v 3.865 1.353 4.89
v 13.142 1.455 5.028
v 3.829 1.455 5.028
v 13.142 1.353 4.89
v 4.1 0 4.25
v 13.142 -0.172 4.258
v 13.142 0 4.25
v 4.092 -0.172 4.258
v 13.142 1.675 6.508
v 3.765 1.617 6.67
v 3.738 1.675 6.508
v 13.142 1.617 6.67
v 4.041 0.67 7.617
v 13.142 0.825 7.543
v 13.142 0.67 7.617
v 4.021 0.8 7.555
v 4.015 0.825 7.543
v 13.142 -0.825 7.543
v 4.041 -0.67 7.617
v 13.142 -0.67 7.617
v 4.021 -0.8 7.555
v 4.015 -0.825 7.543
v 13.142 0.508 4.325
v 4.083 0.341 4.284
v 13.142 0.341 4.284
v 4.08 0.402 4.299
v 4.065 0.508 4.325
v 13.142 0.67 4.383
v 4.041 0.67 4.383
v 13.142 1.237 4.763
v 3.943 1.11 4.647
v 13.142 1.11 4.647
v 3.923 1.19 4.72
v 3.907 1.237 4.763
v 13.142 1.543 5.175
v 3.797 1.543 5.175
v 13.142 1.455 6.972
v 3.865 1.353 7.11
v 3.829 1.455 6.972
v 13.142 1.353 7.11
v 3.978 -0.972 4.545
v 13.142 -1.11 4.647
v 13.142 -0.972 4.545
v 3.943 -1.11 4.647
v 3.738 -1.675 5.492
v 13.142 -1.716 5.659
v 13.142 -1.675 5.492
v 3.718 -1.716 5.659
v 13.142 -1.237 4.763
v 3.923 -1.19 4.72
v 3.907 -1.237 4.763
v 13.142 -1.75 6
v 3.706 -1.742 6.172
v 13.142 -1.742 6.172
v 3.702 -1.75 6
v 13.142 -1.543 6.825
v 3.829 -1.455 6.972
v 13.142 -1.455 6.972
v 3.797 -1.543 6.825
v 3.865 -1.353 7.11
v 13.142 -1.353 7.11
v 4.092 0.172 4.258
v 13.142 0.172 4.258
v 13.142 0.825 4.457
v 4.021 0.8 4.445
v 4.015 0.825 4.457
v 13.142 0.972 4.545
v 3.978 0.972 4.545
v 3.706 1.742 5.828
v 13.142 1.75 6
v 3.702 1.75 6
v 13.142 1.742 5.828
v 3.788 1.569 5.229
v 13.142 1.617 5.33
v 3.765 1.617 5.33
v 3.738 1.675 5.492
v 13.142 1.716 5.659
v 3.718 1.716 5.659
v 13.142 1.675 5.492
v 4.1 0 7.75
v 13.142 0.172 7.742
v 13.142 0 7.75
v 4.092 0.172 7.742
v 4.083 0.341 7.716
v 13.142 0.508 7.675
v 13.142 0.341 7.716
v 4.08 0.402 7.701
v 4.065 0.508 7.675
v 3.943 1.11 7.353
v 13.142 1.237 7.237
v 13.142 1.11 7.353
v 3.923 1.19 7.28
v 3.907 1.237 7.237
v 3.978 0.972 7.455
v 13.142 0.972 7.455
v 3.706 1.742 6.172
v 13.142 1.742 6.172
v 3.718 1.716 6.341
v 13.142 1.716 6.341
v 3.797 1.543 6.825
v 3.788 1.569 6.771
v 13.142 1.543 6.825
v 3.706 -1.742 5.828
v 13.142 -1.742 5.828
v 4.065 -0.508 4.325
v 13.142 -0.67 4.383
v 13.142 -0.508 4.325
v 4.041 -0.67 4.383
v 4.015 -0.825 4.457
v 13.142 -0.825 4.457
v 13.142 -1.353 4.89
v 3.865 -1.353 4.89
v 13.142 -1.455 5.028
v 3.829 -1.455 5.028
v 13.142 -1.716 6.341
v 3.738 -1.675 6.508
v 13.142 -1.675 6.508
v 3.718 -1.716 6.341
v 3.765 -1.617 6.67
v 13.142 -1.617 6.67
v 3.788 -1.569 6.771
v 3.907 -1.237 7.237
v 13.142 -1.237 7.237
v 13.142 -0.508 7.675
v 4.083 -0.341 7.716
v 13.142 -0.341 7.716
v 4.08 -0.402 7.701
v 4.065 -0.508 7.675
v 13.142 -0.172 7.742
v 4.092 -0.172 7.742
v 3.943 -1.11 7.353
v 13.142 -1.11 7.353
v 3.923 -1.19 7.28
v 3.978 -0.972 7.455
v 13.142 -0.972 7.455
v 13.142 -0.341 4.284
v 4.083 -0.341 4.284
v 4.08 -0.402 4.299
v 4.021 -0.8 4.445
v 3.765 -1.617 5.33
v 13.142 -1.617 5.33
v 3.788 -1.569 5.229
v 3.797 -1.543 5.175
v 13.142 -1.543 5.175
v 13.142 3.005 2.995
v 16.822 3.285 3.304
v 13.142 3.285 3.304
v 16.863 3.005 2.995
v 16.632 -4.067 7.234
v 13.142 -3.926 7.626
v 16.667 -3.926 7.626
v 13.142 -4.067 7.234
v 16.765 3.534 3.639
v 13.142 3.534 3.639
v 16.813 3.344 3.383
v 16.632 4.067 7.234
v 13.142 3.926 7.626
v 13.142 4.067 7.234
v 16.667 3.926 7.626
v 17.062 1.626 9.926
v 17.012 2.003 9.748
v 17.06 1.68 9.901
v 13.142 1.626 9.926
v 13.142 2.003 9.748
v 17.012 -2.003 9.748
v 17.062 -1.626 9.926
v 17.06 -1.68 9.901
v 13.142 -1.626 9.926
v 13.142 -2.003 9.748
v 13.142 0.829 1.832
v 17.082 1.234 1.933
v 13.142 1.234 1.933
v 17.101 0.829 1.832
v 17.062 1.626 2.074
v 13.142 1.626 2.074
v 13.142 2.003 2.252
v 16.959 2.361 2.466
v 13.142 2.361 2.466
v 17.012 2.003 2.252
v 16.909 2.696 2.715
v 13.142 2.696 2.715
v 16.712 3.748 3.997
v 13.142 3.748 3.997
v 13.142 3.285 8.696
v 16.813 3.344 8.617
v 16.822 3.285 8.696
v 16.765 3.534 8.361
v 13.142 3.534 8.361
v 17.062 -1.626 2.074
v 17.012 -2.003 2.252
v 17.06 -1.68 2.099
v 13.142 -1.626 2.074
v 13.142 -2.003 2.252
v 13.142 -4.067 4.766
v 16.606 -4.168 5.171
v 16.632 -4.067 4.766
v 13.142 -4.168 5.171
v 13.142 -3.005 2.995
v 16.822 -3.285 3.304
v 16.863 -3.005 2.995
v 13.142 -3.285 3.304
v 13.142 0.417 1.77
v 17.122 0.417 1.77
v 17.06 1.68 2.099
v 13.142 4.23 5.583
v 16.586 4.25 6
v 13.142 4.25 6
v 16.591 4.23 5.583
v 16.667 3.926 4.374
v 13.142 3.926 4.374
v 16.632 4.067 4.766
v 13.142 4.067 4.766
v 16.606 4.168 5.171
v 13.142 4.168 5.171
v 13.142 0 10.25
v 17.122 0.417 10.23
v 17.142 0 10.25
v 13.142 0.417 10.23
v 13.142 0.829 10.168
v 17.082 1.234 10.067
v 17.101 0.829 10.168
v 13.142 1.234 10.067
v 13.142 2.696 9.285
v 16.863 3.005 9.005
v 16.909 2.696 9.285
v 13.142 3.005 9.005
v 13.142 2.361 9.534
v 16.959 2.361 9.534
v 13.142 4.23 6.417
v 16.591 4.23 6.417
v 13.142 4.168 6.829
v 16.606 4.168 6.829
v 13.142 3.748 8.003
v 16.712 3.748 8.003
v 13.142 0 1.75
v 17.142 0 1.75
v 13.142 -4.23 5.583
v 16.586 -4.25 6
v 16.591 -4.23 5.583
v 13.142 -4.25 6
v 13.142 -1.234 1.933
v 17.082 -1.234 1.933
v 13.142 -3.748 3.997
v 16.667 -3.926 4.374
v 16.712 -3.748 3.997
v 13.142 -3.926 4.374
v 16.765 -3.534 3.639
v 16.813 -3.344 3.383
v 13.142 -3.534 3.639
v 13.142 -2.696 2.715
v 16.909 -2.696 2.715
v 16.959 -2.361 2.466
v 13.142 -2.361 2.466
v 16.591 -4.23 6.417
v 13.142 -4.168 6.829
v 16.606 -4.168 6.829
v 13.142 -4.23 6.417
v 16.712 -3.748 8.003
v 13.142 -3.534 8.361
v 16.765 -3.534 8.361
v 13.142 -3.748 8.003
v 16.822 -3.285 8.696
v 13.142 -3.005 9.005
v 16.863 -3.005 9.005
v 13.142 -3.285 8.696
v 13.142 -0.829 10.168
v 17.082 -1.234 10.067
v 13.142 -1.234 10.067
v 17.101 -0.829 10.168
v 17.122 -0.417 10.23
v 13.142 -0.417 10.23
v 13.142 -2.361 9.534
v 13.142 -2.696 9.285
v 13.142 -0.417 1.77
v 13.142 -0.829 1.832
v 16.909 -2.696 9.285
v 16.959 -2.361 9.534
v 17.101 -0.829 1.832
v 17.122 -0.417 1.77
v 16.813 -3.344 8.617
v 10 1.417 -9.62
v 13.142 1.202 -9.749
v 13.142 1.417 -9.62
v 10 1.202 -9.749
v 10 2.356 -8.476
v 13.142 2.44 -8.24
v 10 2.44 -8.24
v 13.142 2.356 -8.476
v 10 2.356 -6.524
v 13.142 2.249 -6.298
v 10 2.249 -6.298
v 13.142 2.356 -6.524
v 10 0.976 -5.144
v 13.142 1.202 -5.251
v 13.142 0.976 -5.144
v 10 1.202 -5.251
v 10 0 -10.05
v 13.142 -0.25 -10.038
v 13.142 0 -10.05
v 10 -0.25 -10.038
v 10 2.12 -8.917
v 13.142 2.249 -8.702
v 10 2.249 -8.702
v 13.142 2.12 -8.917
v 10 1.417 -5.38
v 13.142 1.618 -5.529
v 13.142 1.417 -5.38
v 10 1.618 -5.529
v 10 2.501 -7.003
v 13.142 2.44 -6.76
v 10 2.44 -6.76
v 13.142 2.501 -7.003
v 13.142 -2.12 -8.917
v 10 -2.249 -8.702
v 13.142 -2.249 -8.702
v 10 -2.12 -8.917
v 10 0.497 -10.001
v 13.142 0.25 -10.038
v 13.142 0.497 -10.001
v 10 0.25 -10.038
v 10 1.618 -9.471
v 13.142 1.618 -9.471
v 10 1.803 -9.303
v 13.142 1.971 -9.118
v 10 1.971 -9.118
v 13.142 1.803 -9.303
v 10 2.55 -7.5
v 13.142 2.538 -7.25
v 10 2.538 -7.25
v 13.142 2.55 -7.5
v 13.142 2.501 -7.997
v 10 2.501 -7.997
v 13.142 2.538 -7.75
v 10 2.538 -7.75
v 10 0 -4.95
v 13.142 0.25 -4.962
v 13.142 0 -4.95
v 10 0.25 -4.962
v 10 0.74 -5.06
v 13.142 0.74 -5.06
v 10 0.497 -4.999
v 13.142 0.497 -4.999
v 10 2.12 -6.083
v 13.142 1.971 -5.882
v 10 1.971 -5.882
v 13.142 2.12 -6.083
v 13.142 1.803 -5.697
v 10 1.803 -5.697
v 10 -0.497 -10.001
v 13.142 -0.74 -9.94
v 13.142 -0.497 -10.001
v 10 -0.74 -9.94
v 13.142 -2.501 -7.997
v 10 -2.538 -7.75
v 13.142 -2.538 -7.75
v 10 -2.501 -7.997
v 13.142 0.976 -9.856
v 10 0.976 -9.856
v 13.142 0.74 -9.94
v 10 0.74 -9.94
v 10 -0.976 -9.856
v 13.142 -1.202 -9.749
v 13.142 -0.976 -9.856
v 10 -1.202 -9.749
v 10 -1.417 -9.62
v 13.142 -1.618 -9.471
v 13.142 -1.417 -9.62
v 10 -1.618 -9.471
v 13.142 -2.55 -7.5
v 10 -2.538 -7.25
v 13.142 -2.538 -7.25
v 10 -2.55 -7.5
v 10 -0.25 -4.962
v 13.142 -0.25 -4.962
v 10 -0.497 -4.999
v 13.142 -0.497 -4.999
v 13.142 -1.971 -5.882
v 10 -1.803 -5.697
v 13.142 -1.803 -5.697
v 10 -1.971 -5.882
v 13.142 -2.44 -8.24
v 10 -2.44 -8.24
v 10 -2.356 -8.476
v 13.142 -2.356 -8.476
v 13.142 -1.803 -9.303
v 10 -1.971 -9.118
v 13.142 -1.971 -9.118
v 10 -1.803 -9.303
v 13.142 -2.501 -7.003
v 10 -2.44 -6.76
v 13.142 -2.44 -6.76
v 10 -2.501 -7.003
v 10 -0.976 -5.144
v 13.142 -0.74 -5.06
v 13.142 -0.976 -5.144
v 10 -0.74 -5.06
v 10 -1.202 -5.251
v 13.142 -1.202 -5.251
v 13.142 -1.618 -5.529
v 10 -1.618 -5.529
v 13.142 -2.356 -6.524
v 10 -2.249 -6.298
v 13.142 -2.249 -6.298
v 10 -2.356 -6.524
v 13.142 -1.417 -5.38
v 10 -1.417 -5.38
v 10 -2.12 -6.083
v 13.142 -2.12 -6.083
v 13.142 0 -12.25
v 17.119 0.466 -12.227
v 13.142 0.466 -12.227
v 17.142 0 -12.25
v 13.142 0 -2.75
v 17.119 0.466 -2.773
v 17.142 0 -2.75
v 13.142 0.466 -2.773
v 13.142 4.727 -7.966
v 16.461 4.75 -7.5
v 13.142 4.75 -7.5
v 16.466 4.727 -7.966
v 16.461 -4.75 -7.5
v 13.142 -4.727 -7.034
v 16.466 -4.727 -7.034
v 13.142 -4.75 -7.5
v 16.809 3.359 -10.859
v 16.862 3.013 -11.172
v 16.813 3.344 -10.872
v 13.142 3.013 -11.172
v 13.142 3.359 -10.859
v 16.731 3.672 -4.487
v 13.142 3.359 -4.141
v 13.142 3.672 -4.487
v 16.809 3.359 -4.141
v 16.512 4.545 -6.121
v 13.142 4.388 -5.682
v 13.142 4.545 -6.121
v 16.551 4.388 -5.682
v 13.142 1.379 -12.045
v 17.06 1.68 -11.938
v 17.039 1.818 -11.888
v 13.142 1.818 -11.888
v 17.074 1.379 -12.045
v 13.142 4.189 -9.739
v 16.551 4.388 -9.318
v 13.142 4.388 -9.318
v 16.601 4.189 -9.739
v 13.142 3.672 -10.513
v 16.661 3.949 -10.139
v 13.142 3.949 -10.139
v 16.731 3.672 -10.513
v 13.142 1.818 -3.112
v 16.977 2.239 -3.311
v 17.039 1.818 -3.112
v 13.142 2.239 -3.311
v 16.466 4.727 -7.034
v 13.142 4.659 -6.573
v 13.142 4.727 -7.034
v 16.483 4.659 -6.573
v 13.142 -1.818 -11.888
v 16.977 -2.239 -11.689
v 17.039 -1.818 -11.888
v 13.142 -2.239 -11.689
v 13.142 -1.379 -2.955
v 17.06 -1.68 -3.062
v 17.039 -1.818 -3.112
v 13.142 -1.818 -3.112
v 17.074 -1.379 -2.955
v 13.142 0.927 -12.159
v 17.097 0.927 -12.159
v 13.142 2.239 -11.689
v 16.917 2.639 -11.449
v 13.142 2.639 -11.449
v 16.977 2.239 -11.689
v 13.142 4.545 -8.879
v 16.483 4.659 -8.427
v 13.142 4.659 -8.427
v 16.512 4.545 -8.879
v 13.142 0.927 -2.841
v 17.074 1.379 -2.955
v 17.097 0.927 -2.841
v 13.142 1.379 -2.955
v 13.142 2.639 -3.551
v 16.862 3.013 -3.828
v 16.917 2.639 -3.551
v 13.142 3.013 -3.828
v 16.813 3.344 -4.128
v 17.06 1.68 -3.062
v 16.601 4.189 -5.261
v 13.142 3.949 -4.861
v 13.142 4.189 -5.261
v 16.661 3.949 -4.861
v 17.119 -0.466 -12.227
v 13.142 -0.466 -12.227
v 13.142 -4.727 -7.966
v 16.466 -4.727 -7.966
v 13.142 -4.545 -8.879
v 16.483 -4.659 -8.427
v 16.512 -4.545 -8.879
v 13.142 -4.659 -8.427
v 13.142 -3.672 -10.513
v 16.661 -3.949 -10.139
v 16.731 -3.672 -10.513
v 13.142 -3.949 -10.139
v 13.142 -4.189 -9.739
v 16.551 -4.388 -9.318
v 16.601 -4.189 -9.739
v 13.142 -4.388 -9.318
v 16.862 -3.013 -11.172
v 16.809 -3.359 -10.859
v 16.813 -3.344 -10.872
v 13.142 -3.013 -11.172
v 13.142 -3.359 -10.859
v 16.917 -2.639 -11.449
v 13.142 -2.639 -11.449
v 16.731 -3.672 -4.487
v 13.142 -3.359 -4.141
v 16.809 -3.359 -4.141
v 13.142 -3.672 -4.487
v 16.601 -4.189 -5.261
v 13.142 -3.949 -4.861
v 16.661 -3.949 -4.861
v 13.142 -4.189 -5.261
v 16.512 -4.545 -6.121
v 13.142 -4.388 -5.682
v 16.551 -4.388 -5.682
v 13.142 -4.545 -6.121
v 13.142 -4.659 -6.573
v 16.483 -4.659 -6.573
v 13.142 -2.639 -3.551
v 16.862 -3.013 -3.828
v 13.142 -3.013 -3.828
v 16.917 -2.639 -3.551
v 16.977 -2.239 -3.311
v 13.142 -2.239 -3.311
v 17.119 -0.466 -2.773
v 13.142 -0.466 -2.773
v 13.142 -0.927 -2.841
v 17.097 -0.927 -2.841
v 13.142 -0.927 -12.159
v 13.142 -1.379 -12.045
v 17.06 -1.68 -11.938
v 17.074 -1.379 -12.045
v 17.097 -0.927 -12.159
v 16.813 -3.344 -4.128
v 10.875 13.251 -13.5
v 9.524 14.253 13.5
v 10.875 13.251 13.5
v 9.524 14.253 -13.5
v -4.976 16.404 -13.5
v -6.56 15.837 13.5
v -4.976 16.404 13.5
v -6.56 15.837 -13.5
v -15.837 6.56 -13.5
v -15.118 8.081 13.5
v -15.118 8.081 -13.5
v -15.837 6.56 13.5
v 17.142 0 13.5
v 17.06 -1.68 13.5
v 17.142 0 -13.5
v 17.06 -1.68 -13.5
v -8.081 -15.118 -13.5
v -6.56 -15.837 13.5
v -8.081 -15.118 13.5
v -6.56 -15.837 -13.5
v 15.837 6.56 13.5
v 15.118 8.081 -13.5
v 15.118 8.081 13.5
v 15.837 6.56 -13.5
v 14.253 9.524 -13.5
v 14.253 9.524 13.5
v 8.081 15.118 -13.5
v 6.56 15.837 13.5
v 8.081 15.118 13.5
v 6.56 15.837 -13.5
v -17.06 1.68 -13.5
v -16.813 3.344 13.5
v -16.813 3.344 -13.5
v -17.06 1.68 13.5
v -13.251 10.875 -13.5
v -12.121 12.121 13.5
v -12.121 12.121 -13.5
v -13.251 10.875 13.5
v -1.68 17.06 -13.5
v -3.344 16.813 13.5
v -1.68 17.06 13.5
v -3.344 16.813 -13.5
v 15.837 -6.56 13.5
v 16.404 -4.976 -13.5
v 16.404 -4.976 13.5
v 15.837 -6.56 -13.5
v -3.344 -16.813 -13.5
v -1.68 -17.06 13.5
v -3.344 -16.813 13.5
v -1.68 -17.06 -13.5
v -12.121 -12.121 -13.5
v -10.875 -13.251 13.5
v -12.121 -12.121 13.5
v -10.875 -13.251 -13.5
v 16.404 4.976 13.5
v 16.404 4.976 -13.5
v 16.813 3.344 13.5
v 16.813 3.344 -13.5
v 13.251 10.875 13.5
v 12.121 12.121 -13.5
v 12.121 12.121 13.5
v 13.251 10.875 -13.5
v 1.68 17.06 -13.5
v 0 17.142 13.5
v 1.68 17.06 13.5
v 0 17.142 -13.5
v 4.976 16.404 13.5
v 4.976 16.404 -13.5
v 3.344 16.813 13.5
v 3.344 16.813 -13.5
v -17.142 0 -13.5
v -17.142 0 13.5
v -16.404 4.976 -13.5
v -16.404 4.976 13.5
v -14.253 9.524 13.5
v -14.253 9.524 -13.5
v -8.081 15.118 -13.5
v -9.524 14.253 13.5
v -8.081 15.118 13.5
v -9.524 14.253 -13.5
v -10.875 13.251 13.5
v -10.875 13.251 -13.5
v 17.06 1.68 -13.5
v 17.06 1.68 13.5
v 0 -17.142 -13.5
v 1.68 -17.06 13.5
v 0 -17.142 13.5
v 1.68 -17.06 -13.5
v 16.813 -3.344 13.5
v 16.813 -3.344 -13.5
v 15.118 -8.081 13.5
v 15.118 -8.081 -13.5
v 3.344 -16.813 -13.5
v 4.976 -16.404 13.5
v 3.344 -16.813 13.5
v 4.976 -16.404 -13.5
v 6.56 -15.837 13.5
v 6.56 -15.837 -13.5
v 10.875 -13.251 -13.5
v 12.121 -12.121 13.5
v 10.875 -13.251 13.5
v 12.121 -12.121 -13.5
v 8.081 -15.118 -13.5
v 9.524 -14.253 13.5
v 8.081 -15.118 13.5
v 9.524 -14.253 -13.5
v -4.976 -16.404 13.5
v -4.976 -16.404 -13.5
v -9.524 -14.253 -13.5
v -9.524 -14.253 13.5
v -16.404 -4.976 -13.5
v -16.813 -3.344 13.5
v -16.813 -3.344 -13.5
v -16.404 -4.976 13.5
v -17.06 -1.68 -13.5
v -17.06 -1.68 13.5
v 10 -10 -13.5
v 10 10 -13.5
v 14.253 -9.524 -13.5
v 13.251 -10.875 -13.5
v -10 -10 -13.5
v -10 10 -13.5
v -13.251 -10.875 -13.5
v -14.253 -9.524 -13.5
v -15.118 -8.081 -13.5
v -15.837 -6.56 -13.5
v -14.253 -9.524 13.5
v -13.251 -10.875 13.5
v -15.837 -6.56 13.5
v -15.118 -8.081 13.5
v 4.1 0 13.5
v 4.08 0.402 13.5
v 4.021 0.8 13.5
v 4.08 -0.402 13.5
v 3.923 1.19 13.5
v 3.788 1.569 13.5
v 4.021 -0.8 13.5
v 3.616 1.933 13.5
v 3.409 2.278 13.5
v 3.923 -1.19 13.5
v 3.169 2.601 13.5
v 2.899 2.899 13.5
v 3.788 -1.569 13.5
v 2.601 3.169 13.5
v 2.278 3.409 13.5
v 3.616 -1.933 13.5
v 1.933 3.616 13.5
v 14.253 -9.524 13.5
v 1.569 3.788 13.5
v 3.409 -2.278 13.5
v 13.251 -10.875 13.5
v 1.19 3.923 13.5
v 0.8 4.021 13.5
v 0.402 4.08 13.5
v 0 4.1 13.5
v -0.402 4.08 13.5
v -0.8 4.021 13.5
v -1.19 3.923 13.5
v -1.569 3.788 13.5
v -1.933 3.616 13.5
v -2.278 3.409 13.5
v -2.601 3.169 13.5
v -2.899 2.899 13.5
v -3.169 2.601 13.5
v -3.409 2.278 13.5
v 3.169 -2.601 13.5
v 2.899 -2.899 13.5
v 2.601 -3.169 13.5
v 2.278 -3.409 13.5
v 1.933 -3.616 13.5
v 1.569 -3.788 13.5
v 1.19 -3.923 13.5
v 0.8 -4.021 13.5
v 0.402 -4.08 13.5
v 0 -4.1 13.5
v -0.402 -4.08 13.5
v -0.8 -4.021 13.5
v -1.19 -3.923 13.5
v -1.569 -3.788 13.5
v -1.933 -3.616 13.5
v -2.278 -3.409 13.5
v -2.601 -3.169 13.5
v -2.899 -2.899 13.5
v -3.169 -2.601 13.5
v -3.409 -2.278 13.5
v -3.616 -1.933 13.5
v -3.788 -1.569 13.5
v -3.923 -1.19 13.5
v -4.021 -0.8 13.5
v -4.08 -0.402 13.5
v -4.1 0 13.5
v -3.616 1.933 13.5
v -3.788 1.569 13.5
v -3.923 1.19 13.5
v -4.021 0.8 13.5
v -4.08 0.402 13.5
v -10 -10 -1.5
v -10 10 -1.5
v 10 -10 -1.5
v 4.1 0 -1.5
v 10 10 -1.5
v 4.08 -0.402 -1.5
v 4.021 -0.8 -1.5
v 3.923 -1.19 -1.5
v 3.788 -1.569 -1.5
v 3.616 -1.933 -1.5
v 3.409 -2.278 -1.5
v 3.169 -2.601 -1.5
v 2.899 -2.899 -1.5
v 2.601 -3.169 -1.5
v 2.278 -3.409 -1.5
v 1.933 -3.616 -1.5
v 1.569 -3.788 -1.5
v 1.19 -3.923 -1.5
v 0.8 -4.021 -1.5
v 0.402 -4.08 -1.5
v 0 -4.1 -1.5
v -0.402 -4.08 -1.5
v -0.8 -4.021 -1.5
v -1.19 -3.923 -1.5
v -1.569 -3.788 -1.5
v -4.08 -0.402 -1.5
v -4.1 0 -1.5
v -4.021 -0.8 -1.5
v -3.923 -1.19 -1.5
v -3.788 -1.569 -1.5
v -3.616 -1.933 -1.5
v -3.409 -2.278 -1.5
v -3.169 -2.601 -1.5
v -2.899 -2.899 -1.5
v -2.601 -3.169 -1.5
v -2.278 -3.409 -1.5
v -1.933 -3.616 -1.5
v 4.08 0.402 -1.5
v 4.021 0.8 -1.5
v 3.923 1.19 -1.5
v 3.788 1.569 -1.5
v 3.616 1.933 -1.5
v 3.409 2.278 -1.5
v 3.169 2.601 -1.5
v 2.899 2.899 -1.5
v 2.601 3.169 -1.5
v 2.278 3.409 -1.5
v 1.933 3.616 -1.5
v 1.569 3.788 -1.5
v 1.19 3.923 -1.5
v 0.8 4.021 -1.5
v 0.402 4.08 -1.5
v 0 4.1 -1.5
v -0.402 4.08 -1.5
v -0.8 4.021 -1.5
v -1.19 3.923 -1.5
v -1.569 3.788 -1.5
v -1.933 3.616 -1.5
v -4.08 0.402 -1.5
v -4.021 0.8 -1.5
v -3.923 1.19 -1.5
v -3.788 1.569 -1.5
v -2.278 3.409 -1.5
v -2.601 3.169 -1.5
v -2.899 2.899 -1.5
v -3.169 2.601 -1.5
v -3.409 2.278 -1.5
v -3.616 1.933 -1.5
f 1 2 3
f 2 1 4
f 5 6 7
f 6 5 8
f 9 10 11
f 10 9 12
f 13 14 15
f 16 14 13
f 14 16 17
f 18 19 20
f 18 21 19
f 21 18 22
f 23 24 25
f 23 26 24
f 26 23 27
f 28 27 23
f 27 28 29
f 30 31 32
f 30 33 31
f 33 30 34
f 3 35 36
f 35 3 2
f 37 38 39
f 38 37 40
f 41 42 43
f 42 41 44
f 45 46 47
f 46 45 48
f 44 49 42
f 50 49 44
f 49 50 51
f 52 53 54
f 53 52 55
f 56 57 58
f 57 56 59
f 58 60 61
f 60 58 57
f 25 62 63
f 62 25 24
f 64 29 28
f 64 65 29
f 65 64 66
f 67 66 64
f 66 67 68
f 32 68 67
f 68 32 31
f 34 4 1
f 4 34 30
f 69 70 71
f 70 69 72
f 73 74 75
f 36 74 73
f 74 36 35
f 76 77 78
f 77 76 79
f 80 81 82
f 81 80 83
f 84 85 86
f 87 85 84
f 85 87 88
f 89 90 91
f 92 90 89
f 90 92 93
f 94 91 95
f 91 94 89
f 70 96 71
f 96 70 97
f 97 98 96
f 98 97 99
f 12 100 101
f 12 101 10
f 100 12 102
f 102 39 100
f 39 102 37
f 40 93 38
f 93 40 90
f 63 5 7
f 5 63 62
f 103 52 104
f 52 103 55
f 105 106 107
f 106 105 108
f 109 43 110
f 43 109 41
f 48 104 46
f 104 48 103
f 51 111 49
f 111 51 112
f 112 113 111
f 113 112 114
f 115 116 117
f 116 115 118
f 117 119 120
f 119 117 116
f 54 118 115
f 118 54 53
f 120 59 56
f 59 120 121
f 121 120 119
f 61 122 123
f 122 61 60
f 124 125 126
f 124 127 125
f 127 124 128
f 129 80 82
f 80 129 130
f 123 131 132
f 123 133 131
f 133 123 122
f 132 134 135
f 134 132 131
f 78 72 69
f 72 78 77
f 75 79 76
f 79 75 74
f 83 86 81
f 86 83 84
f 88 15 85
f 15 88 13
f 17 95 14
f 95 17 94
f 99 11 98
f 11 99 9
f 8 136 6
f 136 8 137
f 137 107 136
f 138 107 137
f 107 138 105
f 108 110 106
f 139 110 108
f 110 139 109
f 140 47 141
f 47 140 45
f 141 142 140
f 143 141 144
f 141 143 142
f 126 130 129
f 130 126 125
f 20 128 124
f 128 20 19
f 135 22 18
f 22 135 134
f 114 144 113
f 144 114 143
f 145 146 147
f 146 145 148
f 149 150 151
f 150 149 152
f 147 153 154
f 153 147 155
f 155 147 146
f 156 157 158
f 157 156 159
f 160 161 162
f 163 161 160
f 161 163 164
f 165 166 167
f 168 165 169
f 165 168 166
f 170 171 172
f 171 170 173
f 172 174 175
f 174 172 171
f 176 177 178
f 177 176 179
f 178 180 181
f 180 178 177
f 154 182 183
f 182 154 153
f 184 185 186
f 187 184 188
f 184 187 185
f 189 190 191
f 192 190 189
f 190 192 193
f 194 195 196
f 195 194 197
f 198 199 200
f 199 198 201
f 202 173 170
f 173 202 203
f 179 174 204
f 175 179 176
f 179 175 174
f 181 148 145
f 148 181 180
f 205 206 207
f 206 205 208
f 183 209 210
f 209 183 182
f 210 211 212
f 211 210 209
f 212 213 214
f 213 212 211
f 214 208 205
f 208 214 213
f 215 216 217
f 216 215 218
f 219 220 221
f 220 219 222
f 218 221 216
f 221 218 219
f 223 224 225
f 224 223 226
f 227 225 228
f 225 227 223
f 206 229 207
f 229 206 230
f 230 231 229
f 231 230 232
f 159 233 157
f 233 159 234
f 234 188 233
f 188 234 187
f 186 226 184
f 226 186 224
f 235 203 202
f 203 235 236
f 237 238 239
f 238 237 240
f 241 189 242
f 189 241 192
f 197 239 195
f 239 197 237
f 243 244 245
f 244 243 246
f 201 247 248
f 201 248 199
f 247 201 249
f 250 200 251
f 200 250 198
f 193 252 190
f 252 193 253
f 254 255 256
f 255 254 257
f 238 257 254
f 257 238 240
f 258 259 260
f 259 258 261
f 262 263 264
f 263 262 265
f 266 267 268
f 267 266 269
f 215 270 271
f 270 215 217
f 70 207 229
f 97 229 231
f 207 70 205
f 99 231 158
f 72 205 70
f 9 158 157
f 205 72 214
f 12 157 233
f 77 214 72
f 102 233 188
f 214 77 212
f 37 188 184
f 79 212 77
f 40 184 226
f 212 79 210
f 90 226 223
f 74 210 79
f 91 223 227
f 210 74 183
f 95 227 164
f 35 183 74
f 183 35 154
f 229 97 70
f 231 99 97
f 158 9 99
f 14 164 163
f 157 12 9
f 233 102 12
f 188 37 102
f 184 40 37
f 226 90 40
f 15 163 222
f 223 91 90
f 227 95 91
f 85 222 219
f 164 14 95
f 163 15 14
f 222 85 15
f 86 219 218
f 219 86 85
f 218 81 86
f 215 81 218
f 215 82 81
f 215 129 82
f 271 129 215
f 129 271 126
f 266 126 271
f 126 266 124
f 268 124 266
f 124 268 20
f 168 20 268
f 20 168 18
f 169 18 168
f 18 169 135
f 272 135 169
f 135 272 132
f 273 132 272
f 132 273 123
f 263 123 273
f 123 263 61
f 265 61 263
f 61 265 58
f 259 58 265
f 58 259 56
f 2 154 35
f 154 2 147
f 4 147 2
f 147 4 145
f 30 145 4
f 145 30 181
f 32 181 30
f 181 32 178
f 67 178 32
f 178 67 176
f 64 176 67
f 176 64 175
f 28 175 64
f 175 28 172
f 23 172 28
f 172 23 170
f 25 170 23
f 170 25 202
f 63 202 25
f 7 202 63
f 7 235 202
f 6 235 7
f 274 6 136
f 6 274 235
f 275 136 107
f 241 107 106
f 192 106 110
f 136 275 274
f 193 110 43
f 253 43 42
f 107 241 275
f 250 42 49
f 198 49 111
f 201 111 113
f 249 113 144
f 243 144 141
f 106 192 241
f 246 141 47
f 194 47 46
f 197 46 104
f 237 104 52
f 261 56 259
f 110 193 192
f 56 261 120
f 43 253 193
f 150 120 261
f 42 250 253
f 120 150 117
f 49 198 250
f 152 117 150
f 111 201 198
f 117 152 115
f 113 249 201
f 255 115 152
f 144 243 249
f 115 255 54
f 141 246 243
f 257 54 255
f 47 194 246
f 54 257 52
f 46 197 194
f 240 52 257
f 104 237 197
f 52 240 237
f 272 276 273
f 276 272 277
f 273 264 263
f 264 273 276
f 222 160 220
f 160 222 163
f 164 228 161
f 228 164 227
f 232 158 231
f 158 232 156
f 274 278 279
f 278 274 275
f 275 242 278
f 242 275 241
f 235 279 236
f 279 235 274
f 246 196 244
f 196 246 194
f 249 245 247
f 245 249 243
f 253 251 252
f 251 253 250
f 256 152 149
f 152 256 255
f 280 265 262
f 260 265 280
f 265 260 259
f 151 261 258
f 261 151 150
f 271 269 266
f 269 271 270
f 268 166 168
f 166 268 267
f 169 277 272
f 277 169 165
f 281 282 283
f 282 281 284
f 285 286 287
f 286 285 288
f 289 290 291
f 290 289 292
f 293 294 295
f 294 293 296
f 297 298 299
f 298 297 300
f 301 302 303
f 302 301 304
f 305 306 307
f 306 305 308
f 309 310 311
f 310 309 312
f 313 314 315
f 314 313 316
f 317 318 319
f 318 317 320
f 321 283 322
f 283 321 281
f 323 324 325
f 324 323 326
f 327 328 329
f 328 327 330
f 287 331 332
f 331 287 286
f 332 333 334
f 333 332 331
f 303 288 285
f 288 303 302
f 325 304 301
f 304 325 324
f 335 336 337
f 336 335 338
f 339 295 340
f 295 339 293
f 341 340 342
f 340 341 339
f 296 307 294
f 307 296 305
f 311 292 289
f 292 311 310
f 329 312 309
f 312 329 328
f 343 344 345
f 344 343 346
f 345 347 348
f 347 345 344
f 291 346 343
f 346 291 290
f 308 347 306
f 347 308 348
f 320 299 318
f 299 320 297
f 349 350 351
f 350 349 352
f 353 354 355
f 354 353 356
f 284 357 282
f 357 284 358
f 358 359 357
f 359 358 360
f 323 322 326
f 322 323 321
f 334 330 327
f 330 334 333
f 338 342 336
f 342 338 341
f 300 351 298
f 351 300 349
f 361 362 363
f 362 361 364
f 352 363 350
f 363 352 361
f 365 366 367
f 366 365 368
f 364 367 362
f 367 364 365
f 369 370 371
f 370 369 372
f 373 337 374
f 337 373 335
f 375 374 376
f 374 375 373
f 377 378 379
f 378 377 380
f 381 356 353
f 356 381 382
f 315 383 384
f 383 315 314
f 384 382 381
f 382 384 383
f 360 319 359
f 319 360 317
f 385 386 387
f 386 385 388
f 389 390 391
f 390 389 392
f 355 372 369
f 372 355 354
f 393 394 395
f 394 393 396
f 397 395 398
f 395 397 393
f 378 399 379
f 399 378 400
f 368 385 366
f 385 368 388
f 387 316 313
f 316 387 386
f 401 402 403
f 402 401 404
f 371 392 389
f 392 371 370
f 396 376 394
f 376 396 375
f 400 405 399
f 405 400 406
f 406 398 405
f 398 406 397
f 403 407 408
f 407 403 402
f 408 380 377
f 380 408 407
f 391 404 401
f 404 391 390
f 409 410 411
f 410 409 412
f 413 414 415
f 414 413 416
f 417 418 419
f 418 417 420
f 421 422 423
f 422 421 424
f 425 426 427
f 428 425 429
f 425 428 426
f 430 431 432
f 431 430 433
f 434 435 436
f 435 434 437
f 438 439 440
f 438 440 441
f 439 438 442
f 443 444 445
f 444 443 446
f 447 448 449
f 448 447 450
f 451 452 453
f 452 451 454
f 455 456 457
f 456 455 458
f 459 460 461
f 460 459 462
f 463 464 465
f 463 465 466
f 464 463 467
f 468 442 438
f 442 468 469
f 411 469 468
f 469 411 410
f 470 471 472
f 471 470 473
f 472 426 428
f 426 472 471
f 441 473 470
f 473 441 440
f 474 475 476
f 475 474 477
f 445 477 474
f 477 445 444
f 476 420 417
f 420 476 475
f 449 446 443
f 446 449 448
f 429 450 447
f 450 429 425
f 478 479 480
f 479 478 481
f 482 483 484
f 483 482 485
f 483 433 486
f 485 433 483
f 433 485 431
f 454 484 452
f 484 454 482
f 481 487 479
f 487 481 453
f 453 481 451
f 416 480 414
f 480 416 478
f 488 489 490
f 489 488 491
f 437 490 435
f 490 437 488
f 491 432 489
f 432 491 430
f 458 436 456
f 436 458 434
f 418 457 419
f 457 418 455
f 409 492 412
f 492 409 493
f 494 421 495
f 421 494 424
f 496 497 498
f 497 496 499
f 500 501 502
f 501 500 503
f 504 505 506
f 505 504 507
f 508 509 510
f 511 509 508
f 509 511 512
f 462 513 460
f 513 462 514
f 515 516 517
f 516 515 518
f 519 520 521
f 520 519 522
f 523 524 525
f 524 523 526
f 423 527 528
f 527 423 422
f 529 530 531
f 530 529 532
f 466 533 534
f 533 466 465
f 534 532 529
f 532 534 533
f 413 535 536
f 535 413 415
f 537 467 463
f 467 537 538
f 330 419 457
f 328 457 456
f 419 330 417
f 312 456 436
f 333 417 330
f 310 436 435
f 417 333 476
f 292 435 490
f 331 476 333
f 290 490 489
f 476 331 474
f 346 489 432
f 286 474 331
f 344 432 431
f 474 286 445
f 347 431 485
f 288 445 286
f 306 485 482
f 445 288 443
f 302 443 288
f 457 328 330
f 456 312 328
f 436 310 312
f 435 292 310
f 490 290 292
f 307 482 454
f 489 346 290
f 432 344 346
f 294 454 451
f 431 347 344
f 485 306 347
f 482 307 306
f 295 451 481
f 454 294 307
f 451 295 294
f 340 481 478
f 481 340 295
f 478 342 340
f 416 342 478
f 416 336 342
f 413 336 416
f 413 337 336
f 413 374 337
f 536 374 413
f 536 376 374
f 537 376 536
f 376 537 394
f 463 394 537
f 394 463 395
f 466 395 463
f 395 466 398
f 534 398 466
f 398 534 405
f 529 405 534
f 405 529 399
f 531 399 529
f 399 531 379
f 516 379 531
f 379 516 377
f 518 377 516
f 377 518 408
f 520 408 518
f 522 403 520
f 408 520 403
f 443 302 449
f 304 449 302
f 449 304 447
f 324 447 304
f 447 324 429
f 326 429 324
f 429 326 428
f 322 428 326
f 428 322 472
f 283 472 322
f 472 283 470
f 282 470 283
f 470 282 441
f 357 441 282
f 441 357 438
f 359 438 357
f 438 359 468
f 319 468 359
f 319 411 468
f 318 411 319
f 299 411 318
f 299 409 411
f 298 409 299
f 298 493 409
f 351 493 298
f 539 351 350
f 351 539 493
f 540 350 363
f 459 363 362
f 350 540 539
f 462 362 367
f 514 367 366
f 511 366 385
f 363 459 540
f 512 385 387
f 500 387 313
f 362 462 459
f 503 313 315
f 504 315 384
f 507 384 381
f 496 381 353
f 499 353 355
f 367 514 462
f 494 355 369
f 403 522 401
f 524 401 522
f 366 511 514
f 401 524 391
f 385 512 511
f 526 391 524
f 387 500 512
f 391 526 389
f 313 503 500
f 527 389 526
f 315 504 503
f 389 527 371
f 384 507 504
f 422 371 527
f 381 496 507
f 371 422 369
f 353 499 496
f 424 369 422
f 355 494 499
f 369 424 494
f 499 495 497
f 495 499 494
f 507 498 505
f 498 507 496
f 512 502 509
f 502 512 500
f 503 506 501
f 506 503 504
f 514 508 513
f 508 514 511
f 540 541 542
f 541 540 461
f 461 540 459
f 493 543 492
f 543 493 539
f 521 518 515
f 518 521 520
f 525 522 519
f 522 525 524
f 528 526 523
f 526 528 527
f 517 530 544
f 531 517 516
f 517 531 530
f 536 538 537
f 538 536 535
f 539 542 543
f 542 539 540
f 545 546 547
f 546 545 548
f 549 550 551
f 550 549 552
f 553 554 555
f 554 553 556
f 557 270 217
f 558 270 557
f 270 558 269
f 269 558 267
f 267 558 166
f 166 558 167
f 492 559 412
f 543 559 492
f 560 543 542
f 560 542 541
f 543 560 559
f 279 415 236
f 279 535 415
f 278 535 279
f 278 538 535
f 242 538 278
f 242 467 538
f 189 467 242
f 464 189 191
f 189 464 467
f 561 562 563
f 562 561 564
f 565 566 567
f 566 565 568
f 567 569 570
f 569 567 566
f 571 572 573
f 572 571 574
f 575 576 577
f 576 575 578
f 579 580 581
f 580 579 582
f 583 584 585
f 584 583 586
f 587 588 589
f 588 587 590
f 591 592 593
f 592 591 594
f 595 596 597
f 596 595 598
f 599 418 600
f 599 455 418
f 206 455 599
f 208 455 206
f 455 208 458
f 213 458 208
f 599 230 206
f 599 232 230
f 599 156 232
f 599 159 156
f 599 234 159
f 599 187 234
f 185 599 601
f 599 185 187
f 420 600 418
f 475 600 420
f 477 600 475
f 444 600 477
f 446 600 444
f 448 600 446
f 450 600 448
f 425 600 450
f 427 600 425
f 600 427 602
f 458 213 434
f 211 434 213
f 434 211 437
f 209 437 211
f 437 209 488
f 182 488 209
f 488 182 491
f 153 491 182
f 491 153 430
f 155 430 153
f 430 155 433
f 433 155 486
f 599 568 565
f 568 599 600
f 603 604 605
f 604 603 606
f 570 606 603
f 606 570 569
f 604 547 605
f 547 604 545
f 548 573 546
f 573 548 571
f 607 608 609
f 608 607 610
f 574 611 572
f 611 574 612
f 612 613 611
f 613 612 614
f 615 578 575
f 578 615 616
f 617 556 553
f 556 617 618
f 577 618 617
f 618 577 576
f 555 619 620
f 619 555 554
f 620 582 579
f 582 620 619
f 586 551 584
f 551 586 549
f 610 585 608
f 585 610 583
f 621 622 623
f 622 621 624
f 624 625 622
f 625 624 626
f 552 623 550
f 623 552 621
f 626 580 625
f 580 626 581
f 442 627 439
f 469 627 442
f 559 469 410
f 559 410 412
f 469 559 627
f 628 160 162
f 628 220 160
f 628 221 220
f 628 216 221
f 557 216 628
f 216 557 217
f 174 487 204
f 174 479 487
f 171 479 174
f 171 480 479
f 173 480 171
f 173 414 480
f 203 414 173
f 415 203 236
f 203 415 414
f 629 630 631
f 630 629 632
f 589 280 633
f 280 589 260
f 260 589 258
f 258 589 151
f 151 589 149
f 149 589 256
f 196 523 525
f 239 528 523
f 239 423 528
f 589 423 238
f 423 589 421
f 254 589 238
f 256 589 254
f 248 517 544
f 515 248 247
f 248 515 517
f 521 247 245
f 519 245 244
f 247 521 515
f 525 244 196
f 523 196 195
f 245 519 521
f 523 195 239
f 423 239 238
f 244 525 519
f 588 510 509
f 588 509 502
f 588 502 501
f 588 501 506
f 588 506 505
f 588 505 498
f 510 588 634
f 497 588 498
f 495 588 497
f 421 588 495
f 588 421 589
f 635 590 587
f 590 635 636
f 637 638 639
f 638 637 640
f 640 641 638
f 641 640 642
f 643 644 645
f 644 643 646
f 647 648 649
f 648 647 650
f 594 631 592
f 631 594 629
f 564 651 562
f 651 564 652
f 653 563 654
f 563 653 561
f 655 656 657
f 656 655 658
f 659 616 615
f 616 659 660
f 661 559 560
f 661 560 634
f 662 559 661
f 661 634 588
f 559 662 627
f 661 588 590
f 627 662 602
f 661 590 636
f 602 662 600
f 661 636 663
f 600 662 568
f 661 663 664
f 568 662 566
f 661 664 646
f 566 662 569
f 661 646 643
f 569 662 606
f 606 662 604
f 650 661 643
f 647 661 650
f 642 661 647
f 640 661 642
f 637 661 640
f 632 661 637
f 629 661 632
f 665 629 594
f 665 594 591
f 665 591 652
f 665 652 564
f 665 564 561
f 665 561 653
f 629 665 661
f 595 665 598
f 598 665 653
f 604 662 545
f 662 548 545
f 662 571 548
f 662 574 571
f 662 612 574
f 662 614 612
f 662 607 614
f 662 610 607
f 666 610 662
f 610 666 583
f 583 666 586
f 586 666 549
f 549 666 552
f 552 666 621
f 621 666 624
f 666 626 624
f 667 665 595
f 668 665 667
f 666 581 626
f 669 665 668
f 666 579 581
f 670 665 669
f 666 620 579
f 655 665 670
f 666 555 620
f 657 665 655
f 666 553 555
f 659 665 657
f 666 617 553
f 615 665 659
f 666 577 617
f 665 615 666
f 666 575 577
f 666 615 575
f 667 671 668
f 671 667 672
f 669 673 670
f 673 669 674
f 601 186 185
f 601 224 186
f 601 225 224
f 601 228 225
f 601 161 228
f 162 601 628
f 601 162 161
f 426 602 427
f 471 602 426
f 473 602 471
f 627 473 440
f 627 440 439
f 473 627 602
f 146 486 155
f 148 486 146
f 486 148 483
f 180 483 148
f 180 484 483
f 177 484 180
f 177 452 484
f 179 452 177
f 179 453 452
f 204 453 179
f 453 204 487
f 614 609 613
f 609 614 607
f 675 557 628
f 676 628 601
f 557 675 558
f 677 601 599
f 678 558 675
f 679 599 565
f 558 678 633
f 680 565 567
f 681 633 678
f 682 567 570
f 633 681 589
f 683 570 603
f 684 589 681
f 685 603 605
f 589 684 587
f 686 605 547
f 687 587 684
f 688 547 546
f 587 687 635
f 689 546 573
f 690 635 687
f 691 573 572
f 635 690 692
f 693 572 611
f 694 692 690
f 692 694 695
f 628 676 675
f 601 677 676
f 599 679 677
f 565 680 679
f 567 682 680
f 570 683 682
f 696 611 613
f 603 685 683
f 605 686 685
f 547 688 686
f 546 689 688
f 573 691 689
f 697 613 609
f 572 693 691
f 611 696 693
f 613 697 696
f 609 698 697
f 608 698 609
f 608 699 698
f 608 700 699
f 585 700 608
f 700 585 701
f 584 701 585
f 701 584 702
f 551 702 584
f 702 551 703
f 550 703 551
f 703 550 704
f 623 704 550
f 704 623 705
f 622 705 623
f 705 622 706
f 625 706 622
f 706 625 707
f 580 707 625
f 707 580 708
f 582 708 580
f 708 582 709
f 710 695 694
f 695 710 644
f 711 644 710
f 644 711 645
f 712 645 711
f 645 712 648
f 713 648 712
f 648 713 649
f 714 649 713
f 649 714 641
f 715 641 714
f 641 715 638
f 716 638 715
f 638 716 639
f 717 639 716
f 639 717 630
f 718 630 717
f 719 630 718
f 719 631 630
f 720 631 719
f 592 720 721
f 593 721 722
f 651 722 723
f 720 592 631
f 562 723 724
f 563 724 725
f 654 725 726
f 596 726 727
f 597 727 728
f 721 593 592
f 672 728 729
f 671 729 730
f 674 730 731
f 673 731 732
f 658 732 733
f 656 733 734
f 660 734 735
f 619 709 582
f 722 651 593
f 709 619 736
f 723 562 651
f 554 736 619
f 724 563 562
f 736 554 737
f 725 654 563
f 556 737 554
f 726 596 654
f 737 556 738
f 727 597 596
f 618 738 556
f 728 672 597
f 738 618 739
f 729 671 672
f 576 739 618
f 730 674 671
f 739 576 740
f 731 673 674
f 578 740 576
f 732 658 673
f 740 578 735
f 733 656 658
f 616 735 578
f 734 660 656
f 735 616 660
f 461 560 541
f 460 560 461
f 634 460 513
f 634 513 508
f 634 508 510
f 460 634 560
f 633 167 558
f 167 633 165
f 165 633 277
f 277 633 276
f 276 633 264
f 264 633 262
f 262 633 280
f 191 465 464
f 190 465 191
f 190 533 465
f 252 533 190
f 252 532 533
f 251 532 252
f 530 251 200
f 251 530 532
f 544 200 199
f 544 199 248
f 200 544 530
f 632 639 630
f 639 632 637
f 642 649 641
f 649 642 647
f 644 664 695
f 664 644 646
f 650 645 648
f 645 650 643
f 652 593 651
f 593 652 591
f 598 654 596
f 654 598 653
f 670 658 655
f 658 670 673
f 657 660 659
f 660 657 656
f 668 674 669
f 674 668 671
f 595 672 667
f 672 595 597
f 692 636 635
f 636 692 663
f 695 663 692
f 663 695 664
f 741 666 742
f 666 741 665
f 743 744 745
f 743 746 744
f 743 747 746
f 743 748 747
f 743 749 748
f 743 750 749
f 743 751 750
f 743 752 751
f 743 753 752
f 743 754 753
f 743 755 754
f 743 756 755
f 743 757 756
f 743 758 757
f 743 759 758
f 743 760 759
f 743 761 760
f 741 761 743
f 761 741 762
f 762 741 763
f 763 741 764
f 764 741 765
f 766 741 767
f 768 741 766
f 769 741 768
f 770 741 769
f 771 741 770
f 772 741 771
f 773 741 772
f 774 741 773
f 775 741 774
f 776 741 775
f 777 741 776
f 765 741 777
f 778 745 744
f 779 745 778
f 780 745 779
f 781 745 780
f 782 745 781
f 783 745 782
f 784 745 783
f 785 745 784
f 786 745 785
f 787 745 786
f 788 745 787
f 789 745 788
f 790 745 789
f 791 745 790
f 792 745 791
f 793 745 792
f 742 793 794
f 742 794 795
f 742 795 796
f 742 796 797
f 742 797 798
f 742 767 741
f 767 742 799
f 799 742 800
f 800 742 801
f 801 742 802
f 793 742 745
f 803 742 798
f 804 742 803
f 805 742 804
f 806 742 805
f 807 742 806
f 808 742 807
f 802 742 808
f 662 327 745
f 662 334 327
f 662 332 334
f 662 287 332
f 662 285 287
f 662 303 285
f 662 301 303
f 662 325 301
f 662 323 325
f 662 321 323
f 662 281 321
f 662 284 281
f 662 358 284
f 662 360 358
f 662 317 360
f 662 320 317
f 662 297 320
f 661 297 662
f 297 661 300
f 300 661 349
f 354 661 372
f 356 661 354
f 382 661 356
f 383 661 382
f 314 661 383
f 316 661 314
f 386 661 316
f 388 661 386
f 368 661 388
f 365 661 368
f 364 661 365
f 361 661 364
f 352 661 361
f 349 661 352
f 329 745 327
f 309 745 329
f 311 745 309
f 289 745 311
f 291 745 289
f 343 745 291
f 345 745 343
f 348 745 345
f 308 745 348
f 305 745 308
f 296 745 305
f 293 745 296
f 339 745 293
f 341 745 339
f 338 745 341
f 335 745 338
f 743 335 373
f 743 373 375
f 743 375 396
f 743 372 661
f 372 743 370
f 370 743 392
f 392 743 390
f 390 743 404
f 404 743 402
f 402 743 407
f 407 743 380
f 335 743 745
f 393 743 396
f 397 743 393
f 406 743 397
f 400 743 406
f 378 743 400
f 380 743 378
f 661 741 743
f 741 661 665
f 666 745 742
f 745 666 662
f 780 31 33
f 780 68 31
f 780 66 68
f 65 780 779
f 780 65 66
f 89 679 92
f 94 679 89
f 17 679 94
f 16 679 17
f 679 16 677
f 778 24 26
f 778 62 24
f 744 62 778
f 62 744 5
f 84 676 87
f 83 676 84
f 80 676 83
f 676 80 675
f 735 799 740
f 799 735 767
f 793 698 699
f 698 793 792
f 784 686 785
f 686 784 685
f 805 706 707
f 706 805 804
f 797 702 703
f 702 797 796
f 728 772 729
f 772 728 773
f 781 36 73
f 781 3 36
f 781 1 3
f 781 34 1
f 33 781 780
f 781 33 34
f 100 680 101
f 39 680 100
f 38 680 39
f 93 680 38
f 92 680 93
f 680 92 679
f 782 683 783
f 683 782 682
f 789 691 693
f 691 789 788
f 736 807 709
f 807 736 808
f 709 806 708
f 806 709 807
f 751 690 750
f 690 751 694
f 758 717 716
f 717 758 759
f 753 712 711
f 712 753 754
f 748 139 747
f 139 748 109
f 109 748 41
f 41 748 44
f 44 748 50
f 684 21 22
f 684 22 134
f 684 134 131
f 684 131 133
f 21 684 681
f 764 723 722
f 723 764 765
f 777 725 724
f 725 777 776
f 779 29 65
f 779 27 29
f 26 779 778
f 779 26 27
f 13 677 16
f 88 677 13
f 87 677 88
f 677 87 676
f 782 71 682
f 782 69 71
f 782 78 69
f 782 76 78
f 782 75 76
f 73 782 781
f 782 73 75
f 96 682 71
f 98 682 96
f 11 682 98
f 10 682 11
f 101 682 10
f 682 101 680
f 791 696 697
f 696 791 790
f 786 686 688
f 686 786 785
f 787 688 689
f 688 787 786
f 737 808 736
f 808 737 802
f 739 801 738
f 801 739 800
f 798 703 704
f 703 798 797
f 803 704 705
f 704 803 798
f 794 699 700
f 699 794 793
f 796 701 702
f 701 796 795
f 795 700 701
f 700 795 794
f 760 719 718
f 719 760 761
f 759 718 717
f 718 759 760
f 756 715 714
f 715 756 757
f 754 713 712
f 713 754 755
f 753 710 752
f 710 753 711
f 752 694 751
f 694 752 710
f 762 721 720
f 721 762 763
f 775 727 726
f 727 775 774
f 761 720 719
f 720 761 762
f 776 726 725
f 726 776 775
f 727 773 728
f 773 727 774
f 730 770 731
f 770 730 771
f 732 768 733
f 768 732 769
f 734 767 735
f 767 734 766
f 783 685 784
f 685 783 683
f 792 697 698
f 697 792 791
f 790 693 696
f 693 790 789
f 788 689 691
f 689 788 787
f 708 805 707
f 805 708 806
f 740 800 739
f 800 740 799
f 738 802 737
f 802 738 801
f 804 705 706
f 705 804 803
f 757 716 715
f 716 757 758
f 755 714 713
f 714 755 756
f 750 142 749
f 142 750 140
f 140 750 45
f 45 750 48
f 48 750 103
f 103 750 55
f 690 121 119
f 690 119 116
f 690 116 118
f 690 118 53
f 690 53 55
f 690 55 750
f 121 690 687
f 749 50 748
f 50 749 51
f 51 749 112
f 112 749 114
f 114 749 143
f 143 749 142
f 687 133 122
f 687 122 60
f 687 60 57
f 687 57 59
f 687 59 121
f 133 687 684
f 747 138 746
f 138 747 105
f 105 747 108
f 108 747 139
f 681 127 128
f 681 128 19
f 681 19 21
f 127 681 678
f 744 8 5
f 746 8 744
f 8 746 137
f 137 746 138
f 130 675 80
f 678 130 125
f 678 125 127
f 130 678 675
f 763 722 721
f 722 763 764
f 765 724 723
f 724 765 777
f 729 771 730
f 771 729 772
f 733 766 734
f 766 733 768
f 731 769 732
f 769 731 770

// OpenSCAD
// ====================================================================
// 2020 T-Slot Extrusion to 8mm Metal Rod End-Mount Adapter (Cylindrical)
// ====================================================================
$fn = 64; // High resolution for smooth holes

// --- Parametric Dimensions ---
tslot_size             = 20.0; // Standard 2020 profile width (20mm)
tslot_clearance        = 0.0;  // Print tolerance for 2020 fit (+0.2mm)
socket_depth           = 12.0; // Depth of sleeve wrapping around 2020 end (20mm)

rod_diam               = 8.0;  // Metal rod diameter (8mm)
rod_clearance          = 0.1;  // Print tolerance for rod fit (+0.2mm)
rod_socket_depth       = 15.0; // Insertion depth for the 8mm rod (25mm)

wall_thickness         = 3.0;  // Wall thickness at thinnest point (3.5mm)
partition_thick        = 0.0;  // Divider thickness between 2020 end and rod (5.0mm)


// --- M4 Rod Set-Screw & Countersink Parameters ---
m4_rod_tap_diam        = 3.5;  // M4 tap hole diameter for threading into plastic (3.5mm)
m4_cs_diam             = 8.5;  // Recess diameter for M4 screw head (8.5mm)
m4_cs_depth            = 4.0;  // Countersink depth from outer cylinder surface (6.0mm)

// --- M5 - Clamps 2020 T-Slot & Countersink Parameters ---
m5_bolt_diam           = 5.1;  // Hole diameter for M5 bolt
m5_cs_diam             = 9.5;  // Recess diameter for M4 screw head (9.5mm)
m5_cs_depth            = 4.0;  // Countersink depth from outer cylinder surface (6.0mm)

// --- Derived Dimensions ---
tslot_width  = tslot_size + (tslot_clearance * 2);
outer_diam   = sqrt(2 * pow(tslot_width, 2)) + (wall_thickness * 2); 
total_length = socket_depth + partition_thick + rod_socket_depth;

// --- Main Part Generation ---
difference() {
    // 1. Solid Outer Cylinder Shell
    cylinder(d = outer_diam, h = total_length, center = true);

    // 2. 2020 Extrusion Socket (Bottom)
    translate([0, 0, -total_length/2 + socket_depth/2 - 0.1])
        cube([
            tslot_width, 
            tslot_width, 
            socket_depth + 0.2
        ], center = true);

    // 3. 8mm Rod Socket (Top)
    translate([0, 0, total_length/2 - rod_socket_depth/2 + 0.1])
        cylinder(
            d = rod_diam + (rod_clearance * 2), 
            h = rod_socket_depth + 0.2, 
            center = true
        );

    // 4. Center M5 Mounting Hole (Secures adapter into 2020 end-hole)
//    cylinder(d = m5_bolt_diam, h = total_length + 2, center = true);

    // 5. Top M4 Rod Set-Screw (Single-sided: Center to outer edge only)
    translate([0, 0, total_length/2 - (rod_socket_depth / 2)]) {
        rotate([0, 90, 0]) {
            // M4 Tap Hole extending from center axis out to outer wall only
            cylinder(d = m4_rod_tap_diam, h = outer_diam/2 + 1, center = false);

            // Entry-side Countersink/Counterbore for M4 screw head
            translate([0, 0, outer_diam/2 - m4_cs_depth])
                cylinder(d = m4_cs_diam, h = m4_cs_depth + 5);
        }
    }

    // 6. Bottom Side Clamping Set-Screw Hole (M5 - Clamps 2020 T-Slot)
    translate([0, 0, -total_length/2 + (socket_depth / 2)])
        rotate([0, 90, 0]) {
            // M5 Hole extending from center axis out to outer wall only
            cylinder(d = m5_bolt_diam, h = outer_diam/2 + 2, center = false);

            // Entry-side Countersink/Counterbore for M5 screw head
            translate([0, 0, outer_diam/2 - m5_cs_depth])
                cylinder(d = m5_cs_diam, h = m5_cs_depth + 5);
        }
}
